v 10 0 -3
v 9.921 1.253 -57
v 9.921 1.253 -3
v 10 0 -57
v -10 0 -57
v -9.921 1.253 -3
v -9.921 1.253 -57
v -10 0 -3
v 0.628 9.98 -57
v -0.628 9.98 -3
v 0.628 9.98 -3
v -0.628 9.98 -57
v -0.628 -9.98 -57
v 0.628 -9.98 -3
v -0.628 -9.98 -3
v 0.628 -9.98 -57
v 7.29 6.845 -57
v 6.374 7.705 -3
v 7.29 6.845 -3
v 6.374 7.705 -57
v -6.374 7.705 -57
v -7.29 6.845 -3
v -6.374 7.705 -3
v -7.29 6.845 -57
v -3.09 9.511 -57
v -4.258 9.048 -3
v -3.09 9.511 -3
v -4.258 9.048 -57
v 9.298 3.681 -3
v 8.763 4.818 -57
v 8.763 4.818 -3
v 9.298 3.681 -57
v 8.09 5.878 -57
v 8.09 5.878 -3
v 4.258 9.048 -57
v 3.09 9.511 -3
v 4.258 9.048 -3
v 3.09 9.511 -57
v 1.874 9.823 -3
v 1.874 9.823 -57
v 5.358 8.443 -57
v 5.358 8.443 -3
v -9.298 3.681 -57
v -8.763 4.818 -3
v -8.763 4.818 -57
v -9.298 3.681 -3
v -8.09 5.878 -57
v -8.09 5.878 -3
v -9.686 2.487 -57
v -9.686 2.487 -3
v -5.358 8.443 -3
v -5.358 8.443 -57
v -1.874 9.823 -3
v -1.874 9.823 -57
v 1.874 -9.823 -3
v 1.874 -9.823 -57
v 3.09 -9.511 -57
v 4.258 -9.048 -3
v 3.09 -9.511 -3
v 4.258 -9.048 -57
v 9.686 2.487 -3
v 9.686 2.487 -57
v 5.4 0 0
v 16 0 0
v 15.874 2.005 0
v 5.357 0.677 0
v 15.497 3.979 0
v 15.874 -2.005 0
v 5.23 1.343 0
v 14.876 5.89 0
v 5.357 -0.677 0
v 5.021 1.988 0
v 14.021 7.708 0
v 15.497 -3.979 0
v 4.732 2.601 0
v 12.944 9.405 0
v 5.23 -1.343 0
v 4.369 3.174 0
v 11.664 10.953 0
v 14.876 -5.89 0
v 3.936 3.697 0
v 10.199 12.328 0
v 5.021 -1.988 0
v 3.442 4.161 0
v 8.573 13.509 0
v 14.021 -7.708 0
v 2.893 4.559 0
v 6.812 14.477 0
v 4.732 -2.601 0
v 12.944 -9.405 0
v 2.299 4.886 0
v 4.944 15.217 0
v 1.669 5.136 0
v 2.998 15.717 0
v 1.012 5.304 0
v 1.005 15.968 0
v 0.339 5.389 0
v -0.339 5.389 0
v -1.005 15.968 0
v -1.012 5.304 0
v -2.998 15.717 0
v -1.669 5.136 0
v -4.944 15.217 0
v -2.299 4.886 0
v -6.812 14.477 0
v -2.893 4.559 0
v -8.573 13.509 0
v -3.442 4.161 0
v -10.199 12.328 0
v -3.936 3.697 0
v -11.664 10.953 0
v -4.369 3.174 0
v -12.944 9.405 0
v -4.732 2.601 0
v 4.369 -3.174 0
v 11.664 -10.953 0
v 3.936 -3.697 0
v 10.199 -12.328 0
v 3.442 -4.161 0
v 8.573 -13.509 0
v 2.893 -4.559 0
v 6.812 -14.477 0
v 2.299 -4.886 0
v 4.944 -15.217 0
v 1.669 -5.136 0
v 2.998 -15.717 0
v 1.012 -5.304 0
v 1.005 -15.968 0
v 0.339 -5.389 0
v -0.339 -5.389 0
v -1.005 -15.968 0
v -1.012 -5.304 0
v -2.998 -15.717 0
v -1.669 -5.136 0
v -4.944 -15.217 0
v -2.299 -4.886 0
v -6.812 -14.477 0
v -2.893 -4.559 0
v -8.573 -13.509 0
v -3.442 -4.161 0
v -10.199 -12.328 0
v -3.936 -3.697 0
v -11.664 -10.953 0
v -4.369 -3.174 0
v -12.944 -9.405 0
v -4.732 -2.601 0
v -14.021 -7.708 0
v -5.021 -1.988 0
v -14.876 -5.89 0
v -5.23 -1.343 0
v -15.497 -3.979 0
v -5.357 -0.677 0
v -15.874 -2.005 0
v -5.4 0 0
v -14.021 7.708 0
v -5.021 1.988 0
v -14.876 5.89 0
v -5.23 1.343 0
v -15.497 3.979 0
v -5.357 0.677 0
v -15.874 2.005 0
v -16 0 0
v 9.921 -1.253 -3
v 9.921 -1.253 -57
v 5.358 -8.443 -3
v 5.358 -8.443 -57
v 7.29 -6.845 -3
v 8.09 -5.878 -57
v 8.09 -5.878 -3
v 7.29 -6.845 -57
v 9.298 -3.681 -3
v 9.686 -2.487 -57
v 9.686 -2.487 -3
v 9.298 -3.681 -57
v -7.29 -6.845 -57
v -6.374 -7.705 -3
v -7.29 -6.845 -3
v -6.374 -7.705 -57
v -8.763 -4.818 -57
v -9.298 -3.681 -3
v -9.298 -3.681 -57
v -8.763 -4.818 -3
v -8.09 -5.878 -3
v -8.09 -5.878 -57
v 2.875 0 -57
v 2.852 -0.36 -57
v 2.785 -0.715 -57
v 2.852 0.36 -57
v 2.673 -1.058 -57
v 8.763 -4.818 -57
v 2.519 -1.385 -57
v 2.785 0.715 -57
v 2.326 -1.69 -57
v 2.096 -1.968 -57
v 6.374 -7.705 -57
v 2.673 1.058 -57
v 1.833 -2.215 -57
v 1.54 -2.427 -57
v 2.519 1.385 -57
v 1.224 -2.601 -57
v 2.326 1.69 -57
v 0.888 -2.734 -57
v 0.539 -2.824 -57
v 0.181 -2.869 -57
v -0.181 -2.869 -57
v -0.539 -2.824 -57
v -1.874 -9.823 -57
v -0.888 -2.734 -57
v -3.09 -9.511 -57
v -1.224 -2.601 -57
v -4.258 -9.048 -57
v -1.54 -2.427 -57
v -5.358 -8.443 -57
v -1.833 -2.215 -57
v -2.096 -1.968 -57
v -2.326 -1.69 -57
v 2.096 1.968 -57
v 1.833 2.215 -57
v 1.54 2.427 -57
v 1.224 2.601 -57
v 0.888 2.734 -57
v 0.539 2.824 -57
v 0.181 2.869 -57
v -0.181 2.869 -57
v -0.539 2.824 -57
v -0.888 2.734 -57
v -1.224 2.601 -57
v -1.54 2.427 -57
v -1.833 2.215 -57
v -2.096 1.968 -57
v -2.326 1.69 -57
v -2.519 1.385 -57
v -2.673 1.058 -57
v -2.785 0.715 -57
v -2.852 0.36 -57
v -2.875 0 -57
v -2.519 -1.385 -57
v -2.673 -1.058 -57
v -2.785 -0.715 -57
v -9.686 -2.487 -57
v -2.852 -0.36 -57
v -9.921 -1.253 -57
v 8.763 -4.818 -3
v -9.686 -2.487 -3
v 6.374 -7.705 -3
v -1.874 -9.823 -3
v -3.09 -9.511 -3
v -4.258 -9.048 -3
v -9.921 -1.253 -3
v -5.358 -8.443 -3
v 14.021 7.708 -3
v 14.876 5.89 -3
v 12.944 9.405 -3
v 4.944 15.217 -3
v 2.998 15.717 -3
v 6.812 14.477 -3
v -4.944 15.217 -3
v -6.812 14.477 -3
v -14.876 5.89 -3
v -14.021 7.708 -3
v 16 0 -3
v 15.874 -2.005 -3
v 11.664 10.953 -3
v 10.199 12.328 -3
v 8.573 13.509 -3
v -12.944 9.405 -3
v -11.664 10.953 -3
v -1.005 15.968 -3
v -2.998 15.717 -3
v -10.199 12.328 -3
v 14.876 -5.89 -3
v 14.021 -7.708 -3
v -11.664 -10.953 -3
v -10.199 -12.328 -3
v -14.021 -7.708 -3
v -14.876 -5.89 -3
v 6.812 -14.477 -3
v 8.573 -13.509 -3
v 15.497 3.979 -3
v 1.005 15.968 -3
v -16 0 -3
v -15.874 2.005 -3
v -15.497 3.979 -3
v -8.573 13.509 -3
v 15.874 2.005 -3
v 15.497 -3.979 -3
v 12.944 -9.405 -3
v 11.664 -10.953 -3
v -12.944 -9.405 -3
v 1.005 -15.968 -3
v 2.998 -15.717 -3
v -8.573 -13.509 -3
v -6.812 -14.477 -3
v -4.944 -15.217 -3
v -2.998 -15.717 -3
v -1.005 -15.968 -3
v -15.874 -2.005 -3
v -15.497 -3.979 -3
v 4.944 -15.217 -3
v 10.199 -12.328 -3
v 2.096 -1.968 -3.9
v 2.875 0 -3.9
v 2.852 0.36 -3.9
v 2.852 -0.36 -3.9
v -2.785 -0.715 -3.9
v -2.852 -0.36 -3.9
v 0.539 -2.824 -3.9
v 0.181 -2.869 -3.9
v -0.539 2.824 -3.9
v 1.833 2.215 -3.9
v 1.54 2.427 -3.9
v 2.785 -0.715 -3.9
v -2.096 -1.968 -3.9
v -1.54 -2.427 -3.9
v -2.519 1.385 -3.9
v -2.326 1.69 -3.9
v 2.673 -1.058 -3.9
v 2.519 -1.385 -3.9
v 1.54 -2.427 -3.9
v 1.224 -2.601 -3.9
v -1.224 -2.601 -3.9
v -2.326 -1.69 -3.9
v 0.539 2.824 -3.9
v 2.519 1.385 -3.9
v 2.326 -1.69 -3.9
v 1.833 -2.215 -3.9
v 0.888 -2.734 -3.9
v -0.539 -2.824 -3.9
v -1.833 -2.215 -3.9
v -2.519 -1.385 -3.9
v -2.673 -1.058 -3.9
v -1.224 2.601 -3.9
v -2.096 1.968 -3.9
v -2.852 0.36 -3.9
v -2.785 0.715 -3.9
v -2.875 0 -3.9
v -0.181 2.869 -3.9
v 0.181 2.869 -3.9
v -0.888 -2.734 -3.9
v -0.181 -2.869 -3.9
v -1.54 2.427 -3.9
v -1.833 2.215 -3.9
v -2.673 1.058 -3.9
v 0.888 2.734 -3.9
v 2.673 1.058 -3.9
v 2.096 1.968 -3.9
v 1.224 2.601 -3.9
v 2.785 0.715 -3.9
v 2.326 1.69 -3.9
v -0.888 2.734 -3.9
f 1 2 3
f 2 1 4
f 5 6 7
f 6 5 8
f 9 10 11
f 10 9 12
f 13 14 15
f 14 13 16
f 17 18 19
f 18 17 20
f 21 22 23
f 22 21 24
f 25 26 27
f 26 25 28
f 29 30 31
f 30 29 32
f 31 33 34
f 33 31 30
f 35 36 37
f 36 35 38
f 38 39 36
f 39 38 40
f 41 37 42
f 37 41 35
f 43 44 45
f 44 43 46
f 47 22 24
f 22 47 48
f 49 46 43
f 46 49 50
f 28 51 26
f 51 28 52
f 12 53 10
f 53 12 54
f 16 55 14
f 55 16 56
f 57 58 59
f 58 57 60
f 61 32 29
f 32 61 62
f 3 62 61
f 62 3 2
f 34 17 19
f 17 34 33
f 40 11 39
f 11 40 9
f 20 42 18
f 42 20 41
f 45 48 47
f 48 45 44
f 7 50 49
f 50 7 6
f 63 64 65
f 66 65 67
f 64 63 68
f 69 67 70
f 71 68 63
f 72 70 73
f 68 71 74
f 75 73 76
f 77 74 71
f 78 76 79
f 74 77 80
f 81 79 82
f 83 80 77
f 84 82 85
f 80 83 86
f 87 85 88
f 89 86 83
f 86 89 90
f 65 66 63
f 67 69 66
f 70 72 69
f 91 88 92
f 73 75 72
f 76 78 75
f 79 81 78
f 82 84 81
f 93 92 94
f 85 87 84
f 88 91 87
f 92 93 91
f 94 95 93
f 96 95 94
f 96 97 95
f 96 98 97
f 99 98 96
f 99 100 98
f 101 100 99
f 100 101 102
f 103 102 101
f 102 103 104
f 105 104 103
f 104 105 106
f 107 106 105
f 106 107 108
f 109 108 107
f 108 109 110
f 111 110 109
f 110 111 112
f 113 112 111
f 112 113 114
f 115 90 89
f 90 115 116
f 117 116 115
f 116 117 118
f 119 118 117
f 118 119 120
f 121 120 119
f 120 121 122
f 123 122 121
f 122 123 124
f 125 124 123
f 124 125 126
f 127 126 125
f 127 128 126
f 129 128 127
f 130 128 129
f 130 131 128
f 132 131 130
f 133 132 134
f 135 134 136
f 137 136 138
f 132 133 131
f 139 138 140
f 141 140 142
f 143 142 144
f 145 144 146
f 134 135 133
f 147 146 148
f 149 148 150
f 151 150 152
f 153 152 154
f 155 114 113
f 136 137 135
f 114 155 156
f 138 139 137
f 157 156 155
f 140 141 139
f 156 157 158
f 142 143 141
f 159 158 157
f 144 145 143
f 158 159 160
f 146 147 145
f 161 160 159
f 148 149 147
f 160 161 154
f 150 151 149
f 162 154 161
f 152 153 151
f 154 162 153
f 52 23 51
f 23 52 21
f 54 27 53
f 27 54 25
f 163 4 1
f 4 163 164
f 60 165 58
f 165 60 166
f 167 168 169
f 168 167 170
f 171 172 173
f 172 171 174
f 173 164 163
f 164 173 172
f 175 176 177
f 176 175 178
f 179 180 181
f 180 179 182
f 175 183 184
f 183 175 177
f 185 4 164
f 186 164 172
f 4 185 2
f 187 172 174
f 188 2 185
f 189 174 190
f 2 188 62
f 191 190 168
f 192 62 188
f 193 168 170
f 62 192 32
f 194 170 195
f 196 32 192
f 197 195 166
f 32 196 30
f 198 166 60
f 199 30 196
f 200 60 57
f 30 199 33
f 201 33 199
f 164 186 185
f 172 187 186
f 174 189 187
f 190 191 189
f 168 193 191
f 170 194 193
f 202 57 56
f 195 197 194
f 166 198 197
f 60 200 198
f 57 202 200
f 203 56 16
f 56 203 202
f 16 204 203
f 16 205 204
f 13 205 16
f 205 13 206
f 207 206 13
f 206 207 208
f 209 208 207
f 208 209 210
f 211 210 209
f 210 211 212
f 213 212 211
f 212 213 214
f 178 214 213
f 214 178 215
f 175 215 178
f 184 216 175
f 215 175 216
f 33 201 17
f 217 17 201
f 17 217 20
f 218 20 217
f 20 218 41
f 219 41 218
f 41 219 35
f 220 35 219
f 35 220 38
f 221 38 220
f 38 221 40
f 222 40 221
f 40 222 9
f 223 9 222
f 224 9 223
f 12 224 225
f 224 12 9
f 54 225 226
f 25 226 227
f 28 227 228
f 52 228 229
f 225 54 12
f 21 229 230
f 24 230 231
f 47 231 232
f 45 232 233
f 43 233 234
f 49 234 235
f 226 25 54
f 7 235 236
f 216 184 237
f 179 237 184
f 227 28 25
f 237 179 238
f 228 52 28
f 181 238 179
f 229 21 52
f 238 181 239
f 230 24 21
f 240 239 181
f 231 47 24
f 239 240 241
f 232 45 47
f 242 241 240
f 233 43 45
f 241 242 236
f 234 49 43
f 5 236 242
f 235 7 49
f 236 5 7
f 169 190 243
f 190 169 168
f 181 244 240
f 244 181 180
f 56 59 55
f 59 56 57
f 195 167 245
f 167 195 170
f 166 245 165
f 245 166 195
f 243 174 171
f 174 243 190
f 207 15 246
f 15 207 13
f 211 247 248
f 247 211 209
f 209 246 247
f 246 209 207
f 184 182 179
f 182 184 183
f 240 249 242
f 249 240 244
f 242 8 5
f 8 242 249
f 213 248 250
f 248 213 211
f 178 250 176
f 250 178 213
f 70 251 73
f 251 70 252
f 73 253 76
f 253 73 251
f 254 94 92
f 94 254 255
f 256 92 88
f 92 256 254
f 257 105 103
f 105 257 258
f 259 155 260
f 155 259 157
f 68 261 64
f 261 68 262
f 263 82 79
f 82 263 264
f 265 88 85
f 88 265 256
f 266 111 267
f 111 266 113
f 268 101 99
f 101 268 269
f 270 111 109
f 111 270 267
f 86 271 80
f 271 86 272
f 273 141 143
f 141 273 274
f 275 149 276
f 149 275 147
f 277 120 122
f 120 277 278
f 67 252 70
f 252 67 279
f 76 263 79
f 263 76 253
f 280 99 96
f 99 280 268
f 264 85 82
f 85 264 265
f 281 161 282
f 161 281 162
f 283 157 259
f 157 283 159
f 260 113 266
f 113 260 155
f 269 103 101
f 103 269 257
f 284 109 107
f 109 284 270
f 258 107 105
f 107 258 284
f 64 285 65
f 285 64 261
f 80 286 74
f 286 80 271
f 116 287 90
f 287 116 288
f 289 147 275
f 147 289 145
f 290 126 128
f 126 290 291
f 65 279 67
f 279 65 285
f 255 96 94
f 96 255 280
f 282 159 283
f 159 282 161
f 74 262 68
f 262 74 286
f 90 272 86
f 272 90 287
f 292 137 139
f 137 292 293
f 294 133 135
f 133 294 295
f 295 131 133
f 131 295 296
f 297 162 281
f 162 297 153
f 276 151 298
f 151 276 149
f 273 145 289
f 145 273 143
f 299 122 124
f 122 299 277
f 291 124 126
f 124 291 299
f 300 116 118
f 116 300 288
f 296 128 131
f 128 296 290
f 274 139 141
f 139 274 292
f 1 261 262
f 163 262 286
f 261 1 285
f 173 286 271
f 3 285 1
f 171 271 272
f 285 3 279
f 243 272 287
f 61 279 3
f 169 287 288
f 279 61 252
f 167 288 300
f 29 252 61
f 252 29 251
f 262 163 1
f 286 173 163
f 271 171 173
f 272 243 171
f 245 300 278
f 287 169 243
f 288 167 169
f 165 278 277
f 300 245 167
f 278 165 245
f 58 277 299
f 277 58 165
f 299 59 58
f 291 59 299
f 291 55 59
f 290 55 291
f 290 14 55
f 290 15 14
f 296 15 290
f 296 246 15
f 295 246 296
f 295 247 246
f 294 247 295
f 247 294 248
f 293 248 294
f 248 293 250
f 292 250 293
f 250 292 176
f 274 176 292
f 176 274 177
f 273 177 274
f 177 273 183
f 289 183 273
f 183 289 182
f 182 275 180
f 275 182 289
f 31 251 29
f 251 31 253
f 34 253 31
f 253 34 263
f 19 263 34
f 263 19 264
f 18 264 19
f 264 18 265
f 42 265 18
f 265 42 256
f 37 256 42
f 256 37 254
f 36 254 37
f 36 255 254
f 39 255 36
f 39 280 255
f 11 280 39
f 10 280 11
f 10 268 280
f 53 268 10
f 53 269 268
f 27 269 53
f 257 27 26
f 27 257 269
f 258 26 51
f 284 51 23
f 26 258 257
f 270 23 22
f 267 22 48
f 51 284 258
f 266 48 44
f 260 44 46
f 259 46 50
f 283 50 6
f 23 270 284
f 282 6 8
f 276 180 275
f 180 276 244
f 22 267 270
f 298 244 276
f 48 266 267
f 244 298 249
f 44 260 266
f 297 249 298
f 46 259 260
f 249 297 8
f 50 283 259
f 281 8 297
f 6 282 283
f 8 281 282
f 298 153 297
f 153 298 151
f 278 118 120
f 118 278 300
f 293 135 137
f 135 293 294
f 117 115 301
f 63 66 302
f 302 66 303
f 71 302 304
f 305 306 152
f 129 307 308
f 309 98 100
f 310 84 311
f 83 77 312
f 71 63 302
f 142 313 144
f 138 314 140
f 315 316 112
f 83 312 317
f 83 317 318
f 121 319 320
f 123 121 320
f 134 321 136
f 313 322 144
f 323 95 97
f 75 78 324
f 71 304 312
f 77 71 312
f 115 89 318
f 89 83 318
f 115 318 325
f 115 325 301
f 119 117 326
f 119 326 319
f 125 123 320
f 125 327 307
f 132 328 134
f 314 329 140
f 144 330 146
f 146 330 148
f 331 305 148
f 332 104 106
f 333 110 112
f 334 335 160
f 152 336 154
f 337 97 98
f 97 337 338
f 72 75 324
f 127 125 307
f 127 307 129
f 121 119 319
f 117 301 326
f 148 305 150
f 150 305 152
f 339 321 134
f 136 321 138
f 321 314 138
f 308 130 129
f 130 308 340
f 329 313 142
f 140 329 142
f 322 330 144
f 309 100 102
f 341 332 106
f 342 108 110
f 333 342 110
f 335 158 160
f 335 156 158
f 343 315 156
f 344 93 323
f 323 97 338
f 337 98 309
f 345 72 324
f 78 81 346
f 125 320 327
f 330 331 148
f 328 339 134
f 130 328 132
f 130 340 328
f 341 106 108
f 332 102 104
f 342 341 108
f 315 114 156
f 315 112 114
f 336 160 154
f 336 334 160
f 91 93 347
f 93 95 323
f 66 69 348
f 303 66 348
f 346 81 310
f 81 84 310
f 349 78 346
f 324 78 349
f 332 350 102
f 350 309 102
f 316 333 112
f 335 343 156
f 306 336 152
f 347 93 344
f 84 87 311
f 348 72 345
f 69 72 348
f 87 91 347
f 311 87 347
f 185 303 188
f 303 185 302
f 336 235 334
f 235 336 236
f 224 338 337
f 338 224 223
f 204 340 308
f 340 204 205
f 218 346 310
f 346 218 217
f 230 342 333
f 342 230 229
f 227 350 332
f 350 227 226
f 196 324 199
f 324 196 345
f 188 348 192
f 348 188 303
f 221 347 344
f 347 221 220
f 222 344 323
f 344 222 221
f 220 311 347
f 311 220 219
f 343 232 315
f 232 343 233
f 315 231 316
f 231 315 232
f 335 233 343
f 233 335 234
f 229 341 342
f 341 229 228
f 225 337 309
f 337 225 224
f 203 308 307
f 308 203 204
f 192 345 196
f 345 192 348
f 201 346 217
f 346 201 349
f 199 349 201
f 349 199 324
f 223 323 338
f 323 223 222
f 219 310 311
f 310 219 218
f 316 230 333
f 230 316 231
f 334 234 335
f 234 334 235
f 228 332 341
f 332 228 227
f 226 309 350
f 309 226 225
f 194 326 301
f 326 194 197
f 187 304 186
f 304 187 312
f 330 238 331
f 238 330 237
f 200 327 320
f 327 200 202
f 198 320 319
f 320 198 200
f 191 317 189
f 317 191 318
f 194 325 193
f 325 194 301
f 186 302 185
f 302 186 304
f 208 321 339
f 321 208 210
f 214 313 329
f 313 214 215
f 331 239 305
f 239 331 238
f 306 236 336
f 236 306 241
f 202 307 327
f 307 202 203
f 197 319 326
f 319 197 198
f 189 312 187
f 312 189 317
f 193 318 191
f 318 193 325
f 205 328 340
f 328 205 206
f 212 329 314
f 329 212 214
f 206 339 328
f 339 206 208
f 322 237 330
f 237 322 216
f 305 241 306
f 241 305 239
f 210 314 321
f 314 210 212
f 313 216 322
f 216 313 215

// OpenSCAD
$fn = 50;


difference() {
	union() {
		translate(v = [0, 0, -57.0000000000]) {
			cylinder(h = 57, r = 10.0000000000);
		}
		translate(v = [0, 0, -3.0000000000]) {
			cylinder(h = 3, r = 16.0000000000);
		}
	}
	union() {
		translate(v = [0, 0, 0]) {
			rotate(a = [0, 0, 0]) {
				difference() {
					union() {
						#translate(v = [0, 0, -57.0000000000]) {
							cylinder(h = 57, r = 2.6000000000);
						}
						#translate(v = [0, 0, -3.9000000000]) {
							cylinder(h = 3.9000000000, r = 10.0000000000, r1 = 2.8750000000, r2 = 5.4000000000);
						}
						#translate(v = [0, 0, -57.0000000000]) {
							cylinder(h = 57, r = 2.8750000000);
						}
						#translate(v = [0, 0, -57.0000000000]) {
							cylinder(h = 57, r = 2.6000000000);
						}
					}
					union();
				}
			}
		}
	}
}
